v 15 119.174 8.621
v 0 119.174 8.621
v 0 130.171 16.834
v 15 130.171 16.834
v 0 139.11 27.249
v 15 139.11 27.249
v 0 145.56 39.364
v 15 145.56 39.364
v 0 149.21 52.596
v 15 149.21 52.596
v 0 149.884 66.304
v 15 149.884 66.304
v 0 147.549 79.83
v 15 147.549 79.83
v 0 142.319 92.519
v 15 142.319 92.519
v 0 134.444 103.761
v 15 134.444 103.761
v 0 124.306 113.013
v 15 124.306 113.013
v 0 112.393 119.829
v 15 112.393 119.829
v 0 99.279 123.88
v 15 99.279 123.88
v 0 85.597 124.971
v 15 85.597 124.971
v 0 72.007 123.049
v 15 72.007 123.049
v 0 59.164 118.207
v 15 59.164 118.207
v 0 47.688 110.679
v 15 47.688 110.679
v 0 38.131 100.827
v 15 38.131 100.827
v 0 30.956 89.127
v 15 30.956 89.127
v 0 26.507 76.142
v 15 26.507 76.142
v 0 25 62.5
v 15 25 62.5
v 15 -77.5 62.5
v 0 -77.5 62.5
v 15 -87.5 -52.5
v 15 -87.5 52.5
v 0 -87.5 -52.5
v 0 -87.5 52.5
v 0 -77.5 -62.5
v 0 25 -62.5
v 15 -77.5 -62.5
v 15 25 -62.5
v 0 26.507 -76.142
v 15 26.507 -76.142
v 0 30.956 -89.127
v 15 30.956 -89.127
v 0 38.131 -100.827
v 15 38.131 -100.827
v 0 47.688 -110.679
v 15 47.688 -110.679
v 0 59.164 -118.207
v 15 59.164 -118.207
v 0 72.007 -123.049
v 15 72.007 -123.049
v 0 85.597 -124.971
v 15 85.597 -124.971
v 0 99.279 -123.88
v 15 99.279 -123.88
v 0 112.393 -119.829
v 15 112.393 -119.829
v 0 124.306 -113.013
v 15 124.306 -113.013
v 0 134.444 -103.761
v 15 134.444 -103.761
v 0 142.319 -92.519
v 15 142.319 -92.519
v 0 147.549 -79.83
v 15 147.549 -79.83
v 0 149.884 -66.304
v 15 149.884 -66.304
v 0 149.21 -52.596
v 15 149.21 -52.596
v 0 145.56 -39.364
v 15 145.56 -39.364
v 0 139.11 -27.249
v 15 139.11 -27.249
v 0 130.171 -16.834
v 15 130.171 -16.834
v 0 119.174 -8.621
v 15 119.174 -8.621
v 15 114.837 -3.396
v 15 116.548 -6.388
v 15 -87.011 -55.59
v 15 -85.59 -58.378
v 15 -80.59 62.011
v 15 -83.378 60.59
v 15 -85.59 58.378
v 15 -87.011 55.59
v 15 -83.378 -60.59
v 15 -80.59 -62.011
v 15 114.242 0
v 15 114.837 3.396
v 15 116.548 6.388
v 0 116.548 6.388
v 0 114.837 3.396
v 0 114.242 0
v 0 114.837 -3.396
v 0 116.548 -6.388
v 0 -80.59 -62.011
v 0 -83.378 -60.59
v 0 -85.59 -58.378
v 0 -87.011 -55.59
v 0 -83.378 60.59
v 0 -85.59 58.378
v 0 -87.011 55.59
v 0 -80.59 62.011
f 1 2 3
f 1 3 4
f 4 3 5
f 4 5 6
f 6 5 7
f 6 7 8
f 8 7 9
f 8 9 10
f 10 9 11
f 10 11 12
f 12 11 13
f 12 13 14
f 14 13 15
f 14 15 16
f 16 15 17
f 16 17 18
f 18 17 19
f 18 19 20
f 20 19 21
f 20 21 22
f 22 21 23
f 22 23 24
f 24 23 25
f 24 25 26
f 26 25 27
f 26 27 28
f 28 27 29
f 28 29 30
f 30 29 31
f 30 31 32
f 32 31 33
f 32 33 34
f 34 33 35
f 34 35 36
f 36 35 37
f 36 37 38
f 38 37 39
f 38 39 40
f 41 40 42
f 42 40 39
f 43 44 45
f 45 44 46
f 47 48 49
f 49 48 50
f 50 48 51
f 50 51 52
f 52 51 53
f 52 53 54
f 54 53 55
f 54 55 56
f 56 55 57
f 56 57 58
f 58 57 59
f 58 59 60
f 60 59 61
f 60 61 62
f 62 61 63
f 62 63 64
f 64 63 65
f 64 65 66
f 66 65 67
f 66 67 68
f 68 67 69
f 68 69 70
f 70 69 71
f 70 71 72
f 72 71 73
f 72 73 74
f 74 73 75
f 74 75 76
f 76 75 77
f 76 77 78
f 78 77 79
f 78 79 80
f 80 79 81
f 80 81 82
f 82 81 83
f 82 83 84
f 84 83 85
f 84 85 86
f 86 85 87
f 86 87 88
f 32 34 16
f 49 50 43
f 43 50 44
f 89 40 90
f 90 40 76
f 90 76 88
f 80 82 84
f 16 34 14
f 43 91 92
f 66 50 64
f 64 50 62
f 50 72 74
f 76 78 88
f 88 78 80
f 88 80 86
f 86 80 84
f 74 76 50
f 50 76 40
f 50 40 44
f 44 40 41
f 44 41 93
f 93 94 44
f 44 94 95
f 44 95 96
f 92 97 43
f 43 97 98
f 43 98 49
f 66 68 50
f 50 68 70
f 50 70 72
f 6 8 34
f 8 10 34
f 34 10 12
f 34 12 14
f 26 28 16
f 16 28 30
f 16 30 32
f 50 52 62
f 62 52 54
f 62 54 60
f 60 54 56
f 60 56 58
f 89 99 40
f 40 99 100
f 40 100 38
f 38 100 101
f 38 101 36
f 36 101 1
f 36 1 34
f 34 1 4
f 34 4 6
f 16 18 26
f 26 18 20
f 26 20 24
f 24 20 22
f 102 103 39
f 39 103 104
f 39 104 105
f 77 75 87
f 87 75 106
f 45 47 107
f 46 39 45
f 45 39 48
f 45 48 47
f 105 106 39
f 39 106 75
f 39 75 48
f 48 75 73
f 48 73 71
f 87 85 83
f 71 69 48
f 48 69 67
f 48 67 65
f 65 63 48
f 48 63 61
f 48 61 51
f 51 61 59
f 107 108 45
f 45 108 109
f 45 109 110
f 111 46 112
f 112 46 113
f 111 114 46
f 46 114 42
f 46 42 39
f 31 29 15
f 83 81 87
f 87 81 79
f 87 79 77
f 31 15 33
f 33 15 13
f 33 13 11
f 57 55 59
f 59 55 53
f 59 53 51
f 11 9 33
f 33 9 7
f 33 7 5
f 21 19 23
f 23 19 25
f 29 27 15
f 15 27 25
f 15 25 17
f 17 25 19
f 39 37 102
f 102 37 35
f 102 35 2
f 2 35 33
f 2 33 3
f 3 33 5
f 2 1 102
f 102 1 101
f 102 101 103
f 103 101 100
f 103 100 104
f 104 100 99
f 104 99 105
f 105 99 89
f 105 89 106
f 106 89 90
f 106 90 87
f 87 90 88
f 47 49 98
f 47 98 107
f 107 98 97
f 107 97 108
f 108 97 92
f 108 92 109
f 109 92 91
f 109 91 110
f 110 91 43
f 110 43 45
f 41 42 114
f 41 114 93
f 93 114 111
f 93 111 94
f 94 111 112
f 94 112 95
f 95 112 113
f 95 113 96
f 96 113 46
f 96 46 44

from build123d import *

# Parameters (mm, degrees)
BOSS_EXTRUDE1_DEPTH = 15
FILLET1_R           = 10
FILLET2_R           = 10


with BuildPart() as part:
    # Sketch1 → Boss-Extrude1 (new body)
    with BuildSketch(Plane(origin=(0, 0, 0), x_dir=(0, 0, -1), z_dir=(1, 0, 0))):
        with BuildLine():
            Line((-62.5, 25), (-62.5, -87.5))
            Line((-62.5, -87.5), (62.5, -87.5))
            Line((62.5, -87.5), (62.5, 25))
            ThreePointArc((62.5, 25), (106.694173824, 131.694173824), (0, 87.5))
            ThreePointArc((0, 87.5), (-106.694173824, 131.694173824), (-62.5, 25))
        make_face()
    extrude(amount=BOSS_EXTRUDE1_DEPTH)

    # Fillet1
    fillet1_edges = [part.edges().sort_by_distance(p)[0] for p in [
        (7.5, 87.5, 0),
    ]]
    fillet(fillet1_edges, radius=FILLET1_R)

    # Fillet2
    fillet2_edges = [part.edges().sort_by_distance(p)[0] for p in [
        (7.5, -87.5, -62.5),
        (7.5, -87.5, 62.5),
    ]]
    fillet(fillet2_edges, radius=FILLET2_R)


solid = part.part
